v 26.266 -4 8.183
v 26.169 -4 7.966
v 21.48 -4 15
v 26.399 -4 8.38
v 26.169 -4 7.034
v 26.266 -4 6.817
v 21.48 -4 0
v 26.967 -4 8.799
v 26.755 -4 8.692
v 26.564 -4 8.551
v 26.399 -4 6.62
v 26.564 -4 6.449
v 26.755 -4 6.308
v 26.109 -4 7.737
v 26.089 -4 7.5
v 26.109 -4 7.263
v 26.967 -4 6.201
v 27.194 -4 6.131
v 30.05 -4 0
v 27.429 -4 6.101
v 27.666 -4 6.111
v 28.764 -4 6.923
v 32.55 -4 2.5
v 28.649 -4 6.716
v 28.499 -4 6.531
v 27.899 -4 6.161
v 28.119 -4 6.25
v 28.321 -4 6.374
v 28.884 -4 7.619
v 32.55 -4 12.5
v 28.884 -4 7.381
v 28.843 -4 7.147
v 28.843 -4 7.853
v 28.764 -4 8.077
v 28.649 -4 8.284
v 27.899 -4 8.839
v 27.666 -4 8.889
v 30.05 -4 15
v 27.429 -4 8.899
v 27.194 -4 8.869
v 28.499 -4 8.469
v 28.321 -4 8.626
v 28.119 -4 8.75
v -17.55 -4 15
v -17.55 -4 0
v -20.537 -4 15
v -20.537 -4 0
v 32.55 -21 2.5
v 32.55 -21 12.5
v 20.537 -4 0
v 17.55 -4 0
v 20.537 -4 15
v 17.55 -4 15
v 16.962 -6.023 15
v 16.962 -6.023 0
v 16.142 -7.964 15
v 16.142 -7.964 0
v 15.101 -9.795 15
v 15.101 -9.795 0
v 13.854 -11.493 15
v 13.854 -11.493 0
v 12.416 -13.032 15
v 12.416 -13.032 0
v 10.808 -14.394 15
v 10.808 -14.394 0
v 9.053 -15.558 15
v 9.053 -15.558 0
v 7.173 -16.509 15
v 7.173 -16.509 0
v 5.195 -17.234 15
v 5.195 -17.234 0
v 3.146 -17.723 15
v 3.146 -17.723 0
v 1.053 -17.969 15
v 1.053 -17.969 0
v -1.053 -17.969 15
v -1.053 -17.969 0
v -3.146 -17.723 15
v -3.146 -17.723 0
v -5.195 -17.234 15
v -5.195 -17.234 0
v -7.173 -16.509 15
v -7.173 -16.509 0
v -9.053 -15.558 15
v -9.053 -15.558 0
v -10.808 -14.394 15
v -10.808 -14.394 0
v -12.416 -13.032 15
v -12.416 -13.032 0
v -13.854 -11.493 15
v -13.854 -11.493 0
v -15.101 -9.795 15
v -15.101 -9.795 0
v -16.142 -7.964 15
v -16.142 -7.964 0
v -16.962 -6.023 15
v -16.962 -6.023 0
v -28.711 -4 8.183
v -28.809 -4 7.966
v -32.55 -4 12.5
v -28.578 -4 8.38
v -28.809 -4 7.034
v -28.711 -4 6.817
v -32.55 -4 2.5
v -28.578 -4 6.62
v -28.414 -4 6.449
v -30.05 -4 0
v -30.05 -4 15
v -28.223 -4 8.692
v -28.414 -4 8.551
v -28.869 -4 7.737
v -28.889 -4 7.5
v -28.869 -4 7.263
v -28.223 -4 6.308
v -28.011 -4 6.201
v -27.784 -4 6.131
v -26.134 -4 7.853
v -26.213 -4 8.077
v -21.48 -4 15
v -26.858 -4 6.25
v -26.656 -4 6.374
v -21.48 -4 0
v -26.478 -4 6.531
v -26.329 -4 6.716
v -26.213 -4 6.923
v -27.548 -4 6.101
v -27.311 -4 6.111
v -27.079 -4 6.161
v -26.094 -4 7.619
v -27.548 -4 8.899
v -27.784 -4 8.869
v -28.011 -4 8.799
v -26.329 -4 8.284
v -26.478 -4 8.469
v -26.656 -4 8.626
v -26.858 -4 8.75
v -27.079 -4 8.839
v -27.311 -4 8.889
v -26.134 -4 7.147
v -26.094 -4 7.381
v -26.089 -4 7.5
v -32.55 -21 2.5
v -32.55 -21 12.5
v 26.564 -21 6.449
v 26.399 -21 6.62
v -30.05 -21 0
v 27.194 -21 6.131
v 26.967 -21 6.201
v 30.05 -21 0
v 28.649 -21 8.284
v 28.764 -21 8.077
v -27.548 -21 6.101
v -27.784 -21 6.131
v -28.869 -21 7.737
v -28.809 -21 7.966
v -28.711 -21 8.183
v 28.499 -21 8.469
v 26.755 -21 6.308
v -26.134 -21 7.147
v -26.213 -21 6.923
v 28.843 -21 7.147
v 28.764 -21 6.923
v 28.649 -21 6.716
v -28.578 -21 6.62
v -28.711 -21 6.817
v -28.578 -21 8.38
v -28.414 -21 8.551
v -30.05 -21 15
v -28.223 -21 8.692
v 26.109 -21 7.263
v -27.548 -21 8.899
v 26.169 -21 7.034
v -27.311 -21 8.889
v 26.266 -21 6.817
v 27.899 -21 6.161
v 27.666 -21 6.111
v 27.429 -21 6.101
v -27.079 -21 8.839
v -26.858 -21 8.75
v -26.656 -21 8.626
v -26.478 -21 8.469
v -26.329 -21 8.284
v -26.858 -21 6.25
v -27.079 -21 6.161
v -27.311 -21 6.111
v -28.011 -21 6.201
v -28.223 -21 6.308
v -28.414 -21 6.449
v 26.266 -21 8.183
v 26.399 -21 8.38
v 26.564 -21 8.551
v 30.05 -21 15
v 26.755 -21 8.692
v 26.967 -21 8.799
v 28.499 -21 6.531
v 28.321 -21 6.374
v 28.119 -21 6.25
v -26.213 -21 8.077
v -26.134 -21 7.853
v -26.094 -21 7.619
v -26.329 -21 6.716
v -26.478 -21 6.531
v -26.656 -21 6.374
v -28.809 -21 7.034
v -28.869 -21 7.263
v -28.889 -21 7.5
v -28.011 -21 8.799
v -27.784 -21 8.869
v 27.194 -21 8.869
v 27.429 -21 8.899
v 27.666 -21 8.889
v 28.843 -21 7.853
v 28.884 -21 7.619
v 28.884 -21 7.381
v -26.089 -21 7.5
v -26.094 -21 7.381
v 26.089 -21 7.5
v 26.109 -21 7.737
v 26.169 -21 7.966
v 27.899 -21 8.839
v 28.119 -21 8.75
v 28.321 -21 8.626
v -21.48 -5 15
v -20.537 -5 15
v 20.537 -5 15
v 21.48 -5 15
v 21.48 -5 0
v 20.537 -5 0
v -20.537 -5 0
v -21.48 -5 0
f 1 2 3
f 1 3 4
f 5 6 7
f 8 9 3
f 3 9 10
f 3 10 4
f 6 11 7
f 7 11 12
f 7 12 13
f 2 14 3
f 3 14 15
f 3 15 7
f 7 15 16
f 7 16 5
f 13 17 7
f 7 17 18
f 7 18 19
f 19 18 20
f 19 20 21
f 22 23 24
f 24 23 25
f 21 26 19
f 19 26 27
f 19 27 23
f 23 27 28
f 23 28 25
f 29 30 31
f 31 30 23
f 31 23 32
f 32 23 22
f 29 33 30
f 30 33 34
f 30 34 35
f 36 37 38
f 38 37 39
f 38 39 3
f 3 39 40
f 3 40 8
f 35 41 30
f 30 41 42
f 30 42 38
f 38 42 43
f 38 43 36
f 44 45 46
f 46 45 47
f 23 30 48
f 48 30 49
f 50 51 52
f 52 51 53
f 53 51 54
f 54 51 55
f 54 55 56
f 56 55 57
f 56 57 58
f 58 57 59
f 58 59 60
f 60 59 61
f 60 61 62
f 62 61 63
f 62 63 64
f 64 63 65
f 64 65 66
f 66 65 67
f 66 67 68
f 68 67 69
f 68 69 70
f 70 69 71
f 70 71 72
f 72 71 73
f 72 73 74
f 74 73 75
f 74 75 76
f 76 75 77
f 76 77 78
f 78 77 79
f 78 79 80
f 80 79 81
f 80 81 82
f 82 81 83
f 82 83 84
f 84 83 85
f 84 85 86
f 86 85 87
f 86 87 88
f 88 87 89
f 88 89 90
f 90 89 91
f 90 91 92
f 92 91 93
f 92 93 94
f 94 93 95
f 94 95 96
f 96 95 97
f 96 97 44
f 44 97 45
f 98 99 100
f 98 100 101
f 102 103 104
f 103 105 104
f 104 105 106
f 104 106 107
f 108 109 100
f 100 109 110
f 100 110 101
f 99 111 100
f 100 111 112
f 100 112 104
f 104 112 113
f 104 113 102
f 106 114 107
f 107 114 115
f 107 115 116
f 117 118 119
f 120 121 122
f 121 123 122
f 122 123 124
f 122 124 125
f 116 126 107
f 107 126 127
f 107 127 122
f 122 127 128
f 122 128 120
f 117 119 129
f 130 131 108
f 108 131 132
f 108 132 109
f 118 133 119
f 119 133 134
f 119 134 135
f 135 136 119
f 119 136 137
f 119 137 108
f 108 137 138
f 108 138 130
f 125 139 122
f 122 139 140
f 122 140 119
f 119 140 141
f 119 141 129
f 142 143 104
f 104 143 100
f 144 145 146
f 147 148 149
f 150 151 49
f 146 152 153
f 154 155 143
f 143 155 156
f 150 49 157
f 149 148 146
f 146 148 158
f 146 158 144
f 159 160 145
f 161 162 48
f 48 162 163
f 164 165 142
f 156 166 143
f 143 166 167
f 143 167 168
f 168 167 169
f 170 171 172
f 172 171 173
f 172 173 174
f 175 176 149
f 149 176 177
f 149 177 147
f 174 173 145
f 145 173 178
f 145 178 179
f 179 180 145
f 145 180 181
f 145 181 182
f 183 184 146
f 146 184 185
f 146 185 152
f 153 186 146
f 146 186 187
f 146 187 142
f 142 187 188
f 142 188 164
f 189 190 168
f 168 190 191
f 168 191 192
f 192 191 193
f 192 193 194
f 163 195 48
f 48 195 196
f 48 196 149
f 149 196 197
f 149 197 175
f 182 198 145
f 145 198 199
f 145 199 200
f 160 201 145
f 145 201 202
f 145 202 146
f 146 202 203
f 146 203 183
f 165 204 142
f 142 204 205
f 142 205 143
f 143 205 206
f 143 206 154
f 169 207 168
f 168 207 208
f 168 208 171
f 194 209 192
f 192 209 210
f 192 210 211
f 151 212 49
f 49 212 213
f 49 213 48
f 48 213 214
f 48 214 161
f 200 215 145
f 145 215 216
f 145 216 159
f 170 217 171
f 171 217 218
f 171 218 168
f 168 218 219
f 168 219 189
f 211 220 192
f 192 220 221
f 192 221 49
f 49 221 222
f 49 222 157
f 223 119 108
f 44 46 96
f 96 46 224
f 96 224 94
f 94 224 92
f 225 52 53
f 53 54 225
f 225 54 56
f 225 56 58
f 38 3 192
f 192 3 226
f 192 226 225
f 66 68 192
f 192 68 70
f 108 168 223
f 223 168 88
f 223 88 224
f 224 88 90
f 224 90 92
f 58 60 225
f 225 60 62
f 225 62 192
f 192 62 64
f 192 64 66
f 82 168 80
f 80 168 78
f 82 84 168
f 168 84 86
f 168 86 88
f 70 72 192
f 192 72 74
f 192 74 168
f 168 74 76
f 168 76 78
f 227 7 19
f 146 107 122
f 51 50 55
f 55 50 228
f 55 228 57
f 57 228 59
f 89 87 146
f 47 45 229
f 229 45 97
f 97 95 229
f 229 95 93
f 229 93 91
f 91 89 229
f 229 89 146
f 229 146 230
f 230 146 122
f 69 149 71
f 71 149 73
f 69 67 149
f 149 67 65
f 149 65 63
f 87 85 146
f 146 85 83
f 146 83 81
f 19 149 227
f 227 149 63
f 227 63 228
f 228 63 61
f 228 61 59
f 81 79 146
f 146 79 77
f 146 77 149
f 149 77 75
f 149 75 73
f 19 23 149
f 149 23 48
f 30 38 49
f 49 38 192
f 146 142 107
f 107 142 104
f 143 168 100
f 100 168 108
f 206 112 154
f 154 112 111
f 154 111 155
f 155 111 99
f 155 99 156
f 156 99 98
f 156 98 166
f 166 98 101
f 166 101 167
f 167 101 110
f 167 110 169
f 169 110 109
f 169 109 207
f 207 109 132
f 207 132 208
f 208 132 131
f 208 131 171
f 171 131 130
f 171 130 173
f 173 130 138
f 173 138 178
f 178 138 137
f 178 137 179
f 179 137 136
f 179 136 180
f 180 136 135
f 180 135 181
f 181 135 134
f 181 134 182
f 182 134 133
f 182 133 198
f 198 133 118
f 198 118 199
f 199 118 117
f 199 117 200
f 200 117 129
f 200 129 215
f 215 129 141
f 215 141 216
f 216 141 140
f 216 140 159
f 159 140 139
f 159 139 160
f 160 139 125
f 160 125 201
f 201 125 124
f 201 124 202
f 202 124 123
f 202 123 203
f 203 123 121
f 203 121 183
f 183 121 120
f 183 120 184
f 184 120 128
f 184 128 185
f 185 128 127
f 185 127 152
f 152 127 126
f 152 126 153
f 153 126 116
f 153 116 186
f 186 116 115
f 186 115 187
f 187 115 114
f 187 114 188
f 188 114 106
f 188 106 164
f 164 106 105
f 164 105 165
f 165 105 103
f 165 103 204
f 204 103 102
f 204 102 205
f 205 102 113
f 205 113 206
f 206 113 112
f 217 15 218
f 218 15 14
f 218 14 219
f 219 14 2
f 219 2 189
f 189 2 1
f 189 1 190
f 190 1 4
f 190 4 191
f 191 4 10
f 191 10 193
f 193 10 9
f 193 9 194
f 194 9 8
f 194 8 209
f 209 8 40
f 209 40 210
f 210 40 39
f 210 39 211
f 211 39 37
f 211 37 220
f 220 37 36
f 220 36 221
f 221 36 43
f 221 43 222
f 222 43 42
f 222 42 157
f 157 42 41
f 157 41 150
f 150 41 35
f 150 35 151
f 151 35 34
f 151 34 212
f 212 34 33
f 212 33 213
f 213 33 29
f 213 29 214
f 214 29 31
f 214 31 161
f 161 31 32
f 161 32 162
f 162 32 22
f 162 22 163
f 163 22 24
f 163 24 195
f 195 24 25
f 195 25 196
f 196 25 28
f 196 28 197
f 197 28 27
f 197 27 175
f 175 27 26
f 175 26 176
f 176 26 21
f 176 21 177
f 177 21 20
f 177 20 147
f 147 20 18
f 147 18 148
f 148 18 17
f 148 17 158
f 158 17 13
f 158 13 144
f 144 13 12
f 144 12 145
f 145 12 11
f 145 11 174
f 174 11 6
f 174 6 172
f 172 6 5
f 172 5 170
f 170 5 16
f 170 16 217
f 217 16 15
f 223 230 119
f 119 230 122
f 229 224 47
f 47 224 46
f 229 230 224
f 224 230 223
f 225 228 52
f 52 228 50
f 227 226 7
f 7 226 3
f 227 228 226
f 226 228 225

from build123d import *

# Parameters (mm, degrees)
BOSS_EXTRUDE1_DEPTH = 15
CHAMFER1_SIZE       = 2.5
SKETCH2_R           = 1.4
CUT_EXTRUDE1_DEPTH  = 40.667340007
SKETCH3_W           = 0.942684348
SKETCH3_H           = 15
CUT_EXTRUDE2_DEPTH  = 1


with BuildPart() as part:
    # Sketch1 → Boss-Extrude1 (new body)
    with BuildSketch(Plane.XY):
        with BuildLine():
            Line((-17.549928775, -4), (-32.549928775, -4))
            Line((-32.549928775, -4), (-32.549928775, -21))
            Line((-32.549928775, -21), (32.549928775, -21))
            Line((32.549928775, -21), (32.549928775, -4))
            Line((32.549928775, -4), (17.549928775, -4))
            ThreePointArc((17.549928775, -4), (0, -18), (-17.549928775, -4))
        make_face()
    extrude(amount=BOSS_EXTRUDE1_DEPTH)

    # Chamfer1
    chamfer1_edges = [part.edges().sort_by_distance(p)[0] for p in [
        (-32.549928775, -12.5, 15),
        (32.549928775, -12.5, 15),
        (-32.549928775, -12.5, 0),
        (32.549928775, -12.5, 0),
    ]]
    chamfer(chamfer1_edges, length=CHAMFER1_SIZE)

    # Sketch2 → Cut-Extrude1 (cut, through all)
    with BuildSketch(Plane(origin=(0, -4, 0), x_dir=(1, 0, 0), z_dir=(0, 1, 0))):
        with Locations(Location((27.488644481, -7.5, 0), (0, 0, 180))):
            Circle(SKETCH2_R)
        with Locations((-27.488644481, -7.5)):
            Circle(SKETCH2_R)
    extrude(amount=-CUT_EXTRUDE1_DEPTH, mode=Mode.SUBTRACT)

    # Sketch3 → Cut-Extrude2 (cut)
    with BuildSketch(Plane(origin=(0, -4, 0), x_dir=(1, 0, 0), z_dir=(0, 1, 0))):
        with Locations((-21.008394031, -7.5)):
            Rectangle(SKETCH3_W, SKETCH3_H)
    cut_extrude2 = extrude(amount=-CUT_EXTRUDE2_DEPTH, mode=Mode.SUBTRACT)

    # Mirror1: Cut-Extrude2 across plane
    add(cut_extrude2.mirror(Plane(origin=(0, 0, 0), x_dir=(0, 0, 1), z_dir=(1, 0, 0))), mode=Mode.SUBTRACT)


solid = part.part
